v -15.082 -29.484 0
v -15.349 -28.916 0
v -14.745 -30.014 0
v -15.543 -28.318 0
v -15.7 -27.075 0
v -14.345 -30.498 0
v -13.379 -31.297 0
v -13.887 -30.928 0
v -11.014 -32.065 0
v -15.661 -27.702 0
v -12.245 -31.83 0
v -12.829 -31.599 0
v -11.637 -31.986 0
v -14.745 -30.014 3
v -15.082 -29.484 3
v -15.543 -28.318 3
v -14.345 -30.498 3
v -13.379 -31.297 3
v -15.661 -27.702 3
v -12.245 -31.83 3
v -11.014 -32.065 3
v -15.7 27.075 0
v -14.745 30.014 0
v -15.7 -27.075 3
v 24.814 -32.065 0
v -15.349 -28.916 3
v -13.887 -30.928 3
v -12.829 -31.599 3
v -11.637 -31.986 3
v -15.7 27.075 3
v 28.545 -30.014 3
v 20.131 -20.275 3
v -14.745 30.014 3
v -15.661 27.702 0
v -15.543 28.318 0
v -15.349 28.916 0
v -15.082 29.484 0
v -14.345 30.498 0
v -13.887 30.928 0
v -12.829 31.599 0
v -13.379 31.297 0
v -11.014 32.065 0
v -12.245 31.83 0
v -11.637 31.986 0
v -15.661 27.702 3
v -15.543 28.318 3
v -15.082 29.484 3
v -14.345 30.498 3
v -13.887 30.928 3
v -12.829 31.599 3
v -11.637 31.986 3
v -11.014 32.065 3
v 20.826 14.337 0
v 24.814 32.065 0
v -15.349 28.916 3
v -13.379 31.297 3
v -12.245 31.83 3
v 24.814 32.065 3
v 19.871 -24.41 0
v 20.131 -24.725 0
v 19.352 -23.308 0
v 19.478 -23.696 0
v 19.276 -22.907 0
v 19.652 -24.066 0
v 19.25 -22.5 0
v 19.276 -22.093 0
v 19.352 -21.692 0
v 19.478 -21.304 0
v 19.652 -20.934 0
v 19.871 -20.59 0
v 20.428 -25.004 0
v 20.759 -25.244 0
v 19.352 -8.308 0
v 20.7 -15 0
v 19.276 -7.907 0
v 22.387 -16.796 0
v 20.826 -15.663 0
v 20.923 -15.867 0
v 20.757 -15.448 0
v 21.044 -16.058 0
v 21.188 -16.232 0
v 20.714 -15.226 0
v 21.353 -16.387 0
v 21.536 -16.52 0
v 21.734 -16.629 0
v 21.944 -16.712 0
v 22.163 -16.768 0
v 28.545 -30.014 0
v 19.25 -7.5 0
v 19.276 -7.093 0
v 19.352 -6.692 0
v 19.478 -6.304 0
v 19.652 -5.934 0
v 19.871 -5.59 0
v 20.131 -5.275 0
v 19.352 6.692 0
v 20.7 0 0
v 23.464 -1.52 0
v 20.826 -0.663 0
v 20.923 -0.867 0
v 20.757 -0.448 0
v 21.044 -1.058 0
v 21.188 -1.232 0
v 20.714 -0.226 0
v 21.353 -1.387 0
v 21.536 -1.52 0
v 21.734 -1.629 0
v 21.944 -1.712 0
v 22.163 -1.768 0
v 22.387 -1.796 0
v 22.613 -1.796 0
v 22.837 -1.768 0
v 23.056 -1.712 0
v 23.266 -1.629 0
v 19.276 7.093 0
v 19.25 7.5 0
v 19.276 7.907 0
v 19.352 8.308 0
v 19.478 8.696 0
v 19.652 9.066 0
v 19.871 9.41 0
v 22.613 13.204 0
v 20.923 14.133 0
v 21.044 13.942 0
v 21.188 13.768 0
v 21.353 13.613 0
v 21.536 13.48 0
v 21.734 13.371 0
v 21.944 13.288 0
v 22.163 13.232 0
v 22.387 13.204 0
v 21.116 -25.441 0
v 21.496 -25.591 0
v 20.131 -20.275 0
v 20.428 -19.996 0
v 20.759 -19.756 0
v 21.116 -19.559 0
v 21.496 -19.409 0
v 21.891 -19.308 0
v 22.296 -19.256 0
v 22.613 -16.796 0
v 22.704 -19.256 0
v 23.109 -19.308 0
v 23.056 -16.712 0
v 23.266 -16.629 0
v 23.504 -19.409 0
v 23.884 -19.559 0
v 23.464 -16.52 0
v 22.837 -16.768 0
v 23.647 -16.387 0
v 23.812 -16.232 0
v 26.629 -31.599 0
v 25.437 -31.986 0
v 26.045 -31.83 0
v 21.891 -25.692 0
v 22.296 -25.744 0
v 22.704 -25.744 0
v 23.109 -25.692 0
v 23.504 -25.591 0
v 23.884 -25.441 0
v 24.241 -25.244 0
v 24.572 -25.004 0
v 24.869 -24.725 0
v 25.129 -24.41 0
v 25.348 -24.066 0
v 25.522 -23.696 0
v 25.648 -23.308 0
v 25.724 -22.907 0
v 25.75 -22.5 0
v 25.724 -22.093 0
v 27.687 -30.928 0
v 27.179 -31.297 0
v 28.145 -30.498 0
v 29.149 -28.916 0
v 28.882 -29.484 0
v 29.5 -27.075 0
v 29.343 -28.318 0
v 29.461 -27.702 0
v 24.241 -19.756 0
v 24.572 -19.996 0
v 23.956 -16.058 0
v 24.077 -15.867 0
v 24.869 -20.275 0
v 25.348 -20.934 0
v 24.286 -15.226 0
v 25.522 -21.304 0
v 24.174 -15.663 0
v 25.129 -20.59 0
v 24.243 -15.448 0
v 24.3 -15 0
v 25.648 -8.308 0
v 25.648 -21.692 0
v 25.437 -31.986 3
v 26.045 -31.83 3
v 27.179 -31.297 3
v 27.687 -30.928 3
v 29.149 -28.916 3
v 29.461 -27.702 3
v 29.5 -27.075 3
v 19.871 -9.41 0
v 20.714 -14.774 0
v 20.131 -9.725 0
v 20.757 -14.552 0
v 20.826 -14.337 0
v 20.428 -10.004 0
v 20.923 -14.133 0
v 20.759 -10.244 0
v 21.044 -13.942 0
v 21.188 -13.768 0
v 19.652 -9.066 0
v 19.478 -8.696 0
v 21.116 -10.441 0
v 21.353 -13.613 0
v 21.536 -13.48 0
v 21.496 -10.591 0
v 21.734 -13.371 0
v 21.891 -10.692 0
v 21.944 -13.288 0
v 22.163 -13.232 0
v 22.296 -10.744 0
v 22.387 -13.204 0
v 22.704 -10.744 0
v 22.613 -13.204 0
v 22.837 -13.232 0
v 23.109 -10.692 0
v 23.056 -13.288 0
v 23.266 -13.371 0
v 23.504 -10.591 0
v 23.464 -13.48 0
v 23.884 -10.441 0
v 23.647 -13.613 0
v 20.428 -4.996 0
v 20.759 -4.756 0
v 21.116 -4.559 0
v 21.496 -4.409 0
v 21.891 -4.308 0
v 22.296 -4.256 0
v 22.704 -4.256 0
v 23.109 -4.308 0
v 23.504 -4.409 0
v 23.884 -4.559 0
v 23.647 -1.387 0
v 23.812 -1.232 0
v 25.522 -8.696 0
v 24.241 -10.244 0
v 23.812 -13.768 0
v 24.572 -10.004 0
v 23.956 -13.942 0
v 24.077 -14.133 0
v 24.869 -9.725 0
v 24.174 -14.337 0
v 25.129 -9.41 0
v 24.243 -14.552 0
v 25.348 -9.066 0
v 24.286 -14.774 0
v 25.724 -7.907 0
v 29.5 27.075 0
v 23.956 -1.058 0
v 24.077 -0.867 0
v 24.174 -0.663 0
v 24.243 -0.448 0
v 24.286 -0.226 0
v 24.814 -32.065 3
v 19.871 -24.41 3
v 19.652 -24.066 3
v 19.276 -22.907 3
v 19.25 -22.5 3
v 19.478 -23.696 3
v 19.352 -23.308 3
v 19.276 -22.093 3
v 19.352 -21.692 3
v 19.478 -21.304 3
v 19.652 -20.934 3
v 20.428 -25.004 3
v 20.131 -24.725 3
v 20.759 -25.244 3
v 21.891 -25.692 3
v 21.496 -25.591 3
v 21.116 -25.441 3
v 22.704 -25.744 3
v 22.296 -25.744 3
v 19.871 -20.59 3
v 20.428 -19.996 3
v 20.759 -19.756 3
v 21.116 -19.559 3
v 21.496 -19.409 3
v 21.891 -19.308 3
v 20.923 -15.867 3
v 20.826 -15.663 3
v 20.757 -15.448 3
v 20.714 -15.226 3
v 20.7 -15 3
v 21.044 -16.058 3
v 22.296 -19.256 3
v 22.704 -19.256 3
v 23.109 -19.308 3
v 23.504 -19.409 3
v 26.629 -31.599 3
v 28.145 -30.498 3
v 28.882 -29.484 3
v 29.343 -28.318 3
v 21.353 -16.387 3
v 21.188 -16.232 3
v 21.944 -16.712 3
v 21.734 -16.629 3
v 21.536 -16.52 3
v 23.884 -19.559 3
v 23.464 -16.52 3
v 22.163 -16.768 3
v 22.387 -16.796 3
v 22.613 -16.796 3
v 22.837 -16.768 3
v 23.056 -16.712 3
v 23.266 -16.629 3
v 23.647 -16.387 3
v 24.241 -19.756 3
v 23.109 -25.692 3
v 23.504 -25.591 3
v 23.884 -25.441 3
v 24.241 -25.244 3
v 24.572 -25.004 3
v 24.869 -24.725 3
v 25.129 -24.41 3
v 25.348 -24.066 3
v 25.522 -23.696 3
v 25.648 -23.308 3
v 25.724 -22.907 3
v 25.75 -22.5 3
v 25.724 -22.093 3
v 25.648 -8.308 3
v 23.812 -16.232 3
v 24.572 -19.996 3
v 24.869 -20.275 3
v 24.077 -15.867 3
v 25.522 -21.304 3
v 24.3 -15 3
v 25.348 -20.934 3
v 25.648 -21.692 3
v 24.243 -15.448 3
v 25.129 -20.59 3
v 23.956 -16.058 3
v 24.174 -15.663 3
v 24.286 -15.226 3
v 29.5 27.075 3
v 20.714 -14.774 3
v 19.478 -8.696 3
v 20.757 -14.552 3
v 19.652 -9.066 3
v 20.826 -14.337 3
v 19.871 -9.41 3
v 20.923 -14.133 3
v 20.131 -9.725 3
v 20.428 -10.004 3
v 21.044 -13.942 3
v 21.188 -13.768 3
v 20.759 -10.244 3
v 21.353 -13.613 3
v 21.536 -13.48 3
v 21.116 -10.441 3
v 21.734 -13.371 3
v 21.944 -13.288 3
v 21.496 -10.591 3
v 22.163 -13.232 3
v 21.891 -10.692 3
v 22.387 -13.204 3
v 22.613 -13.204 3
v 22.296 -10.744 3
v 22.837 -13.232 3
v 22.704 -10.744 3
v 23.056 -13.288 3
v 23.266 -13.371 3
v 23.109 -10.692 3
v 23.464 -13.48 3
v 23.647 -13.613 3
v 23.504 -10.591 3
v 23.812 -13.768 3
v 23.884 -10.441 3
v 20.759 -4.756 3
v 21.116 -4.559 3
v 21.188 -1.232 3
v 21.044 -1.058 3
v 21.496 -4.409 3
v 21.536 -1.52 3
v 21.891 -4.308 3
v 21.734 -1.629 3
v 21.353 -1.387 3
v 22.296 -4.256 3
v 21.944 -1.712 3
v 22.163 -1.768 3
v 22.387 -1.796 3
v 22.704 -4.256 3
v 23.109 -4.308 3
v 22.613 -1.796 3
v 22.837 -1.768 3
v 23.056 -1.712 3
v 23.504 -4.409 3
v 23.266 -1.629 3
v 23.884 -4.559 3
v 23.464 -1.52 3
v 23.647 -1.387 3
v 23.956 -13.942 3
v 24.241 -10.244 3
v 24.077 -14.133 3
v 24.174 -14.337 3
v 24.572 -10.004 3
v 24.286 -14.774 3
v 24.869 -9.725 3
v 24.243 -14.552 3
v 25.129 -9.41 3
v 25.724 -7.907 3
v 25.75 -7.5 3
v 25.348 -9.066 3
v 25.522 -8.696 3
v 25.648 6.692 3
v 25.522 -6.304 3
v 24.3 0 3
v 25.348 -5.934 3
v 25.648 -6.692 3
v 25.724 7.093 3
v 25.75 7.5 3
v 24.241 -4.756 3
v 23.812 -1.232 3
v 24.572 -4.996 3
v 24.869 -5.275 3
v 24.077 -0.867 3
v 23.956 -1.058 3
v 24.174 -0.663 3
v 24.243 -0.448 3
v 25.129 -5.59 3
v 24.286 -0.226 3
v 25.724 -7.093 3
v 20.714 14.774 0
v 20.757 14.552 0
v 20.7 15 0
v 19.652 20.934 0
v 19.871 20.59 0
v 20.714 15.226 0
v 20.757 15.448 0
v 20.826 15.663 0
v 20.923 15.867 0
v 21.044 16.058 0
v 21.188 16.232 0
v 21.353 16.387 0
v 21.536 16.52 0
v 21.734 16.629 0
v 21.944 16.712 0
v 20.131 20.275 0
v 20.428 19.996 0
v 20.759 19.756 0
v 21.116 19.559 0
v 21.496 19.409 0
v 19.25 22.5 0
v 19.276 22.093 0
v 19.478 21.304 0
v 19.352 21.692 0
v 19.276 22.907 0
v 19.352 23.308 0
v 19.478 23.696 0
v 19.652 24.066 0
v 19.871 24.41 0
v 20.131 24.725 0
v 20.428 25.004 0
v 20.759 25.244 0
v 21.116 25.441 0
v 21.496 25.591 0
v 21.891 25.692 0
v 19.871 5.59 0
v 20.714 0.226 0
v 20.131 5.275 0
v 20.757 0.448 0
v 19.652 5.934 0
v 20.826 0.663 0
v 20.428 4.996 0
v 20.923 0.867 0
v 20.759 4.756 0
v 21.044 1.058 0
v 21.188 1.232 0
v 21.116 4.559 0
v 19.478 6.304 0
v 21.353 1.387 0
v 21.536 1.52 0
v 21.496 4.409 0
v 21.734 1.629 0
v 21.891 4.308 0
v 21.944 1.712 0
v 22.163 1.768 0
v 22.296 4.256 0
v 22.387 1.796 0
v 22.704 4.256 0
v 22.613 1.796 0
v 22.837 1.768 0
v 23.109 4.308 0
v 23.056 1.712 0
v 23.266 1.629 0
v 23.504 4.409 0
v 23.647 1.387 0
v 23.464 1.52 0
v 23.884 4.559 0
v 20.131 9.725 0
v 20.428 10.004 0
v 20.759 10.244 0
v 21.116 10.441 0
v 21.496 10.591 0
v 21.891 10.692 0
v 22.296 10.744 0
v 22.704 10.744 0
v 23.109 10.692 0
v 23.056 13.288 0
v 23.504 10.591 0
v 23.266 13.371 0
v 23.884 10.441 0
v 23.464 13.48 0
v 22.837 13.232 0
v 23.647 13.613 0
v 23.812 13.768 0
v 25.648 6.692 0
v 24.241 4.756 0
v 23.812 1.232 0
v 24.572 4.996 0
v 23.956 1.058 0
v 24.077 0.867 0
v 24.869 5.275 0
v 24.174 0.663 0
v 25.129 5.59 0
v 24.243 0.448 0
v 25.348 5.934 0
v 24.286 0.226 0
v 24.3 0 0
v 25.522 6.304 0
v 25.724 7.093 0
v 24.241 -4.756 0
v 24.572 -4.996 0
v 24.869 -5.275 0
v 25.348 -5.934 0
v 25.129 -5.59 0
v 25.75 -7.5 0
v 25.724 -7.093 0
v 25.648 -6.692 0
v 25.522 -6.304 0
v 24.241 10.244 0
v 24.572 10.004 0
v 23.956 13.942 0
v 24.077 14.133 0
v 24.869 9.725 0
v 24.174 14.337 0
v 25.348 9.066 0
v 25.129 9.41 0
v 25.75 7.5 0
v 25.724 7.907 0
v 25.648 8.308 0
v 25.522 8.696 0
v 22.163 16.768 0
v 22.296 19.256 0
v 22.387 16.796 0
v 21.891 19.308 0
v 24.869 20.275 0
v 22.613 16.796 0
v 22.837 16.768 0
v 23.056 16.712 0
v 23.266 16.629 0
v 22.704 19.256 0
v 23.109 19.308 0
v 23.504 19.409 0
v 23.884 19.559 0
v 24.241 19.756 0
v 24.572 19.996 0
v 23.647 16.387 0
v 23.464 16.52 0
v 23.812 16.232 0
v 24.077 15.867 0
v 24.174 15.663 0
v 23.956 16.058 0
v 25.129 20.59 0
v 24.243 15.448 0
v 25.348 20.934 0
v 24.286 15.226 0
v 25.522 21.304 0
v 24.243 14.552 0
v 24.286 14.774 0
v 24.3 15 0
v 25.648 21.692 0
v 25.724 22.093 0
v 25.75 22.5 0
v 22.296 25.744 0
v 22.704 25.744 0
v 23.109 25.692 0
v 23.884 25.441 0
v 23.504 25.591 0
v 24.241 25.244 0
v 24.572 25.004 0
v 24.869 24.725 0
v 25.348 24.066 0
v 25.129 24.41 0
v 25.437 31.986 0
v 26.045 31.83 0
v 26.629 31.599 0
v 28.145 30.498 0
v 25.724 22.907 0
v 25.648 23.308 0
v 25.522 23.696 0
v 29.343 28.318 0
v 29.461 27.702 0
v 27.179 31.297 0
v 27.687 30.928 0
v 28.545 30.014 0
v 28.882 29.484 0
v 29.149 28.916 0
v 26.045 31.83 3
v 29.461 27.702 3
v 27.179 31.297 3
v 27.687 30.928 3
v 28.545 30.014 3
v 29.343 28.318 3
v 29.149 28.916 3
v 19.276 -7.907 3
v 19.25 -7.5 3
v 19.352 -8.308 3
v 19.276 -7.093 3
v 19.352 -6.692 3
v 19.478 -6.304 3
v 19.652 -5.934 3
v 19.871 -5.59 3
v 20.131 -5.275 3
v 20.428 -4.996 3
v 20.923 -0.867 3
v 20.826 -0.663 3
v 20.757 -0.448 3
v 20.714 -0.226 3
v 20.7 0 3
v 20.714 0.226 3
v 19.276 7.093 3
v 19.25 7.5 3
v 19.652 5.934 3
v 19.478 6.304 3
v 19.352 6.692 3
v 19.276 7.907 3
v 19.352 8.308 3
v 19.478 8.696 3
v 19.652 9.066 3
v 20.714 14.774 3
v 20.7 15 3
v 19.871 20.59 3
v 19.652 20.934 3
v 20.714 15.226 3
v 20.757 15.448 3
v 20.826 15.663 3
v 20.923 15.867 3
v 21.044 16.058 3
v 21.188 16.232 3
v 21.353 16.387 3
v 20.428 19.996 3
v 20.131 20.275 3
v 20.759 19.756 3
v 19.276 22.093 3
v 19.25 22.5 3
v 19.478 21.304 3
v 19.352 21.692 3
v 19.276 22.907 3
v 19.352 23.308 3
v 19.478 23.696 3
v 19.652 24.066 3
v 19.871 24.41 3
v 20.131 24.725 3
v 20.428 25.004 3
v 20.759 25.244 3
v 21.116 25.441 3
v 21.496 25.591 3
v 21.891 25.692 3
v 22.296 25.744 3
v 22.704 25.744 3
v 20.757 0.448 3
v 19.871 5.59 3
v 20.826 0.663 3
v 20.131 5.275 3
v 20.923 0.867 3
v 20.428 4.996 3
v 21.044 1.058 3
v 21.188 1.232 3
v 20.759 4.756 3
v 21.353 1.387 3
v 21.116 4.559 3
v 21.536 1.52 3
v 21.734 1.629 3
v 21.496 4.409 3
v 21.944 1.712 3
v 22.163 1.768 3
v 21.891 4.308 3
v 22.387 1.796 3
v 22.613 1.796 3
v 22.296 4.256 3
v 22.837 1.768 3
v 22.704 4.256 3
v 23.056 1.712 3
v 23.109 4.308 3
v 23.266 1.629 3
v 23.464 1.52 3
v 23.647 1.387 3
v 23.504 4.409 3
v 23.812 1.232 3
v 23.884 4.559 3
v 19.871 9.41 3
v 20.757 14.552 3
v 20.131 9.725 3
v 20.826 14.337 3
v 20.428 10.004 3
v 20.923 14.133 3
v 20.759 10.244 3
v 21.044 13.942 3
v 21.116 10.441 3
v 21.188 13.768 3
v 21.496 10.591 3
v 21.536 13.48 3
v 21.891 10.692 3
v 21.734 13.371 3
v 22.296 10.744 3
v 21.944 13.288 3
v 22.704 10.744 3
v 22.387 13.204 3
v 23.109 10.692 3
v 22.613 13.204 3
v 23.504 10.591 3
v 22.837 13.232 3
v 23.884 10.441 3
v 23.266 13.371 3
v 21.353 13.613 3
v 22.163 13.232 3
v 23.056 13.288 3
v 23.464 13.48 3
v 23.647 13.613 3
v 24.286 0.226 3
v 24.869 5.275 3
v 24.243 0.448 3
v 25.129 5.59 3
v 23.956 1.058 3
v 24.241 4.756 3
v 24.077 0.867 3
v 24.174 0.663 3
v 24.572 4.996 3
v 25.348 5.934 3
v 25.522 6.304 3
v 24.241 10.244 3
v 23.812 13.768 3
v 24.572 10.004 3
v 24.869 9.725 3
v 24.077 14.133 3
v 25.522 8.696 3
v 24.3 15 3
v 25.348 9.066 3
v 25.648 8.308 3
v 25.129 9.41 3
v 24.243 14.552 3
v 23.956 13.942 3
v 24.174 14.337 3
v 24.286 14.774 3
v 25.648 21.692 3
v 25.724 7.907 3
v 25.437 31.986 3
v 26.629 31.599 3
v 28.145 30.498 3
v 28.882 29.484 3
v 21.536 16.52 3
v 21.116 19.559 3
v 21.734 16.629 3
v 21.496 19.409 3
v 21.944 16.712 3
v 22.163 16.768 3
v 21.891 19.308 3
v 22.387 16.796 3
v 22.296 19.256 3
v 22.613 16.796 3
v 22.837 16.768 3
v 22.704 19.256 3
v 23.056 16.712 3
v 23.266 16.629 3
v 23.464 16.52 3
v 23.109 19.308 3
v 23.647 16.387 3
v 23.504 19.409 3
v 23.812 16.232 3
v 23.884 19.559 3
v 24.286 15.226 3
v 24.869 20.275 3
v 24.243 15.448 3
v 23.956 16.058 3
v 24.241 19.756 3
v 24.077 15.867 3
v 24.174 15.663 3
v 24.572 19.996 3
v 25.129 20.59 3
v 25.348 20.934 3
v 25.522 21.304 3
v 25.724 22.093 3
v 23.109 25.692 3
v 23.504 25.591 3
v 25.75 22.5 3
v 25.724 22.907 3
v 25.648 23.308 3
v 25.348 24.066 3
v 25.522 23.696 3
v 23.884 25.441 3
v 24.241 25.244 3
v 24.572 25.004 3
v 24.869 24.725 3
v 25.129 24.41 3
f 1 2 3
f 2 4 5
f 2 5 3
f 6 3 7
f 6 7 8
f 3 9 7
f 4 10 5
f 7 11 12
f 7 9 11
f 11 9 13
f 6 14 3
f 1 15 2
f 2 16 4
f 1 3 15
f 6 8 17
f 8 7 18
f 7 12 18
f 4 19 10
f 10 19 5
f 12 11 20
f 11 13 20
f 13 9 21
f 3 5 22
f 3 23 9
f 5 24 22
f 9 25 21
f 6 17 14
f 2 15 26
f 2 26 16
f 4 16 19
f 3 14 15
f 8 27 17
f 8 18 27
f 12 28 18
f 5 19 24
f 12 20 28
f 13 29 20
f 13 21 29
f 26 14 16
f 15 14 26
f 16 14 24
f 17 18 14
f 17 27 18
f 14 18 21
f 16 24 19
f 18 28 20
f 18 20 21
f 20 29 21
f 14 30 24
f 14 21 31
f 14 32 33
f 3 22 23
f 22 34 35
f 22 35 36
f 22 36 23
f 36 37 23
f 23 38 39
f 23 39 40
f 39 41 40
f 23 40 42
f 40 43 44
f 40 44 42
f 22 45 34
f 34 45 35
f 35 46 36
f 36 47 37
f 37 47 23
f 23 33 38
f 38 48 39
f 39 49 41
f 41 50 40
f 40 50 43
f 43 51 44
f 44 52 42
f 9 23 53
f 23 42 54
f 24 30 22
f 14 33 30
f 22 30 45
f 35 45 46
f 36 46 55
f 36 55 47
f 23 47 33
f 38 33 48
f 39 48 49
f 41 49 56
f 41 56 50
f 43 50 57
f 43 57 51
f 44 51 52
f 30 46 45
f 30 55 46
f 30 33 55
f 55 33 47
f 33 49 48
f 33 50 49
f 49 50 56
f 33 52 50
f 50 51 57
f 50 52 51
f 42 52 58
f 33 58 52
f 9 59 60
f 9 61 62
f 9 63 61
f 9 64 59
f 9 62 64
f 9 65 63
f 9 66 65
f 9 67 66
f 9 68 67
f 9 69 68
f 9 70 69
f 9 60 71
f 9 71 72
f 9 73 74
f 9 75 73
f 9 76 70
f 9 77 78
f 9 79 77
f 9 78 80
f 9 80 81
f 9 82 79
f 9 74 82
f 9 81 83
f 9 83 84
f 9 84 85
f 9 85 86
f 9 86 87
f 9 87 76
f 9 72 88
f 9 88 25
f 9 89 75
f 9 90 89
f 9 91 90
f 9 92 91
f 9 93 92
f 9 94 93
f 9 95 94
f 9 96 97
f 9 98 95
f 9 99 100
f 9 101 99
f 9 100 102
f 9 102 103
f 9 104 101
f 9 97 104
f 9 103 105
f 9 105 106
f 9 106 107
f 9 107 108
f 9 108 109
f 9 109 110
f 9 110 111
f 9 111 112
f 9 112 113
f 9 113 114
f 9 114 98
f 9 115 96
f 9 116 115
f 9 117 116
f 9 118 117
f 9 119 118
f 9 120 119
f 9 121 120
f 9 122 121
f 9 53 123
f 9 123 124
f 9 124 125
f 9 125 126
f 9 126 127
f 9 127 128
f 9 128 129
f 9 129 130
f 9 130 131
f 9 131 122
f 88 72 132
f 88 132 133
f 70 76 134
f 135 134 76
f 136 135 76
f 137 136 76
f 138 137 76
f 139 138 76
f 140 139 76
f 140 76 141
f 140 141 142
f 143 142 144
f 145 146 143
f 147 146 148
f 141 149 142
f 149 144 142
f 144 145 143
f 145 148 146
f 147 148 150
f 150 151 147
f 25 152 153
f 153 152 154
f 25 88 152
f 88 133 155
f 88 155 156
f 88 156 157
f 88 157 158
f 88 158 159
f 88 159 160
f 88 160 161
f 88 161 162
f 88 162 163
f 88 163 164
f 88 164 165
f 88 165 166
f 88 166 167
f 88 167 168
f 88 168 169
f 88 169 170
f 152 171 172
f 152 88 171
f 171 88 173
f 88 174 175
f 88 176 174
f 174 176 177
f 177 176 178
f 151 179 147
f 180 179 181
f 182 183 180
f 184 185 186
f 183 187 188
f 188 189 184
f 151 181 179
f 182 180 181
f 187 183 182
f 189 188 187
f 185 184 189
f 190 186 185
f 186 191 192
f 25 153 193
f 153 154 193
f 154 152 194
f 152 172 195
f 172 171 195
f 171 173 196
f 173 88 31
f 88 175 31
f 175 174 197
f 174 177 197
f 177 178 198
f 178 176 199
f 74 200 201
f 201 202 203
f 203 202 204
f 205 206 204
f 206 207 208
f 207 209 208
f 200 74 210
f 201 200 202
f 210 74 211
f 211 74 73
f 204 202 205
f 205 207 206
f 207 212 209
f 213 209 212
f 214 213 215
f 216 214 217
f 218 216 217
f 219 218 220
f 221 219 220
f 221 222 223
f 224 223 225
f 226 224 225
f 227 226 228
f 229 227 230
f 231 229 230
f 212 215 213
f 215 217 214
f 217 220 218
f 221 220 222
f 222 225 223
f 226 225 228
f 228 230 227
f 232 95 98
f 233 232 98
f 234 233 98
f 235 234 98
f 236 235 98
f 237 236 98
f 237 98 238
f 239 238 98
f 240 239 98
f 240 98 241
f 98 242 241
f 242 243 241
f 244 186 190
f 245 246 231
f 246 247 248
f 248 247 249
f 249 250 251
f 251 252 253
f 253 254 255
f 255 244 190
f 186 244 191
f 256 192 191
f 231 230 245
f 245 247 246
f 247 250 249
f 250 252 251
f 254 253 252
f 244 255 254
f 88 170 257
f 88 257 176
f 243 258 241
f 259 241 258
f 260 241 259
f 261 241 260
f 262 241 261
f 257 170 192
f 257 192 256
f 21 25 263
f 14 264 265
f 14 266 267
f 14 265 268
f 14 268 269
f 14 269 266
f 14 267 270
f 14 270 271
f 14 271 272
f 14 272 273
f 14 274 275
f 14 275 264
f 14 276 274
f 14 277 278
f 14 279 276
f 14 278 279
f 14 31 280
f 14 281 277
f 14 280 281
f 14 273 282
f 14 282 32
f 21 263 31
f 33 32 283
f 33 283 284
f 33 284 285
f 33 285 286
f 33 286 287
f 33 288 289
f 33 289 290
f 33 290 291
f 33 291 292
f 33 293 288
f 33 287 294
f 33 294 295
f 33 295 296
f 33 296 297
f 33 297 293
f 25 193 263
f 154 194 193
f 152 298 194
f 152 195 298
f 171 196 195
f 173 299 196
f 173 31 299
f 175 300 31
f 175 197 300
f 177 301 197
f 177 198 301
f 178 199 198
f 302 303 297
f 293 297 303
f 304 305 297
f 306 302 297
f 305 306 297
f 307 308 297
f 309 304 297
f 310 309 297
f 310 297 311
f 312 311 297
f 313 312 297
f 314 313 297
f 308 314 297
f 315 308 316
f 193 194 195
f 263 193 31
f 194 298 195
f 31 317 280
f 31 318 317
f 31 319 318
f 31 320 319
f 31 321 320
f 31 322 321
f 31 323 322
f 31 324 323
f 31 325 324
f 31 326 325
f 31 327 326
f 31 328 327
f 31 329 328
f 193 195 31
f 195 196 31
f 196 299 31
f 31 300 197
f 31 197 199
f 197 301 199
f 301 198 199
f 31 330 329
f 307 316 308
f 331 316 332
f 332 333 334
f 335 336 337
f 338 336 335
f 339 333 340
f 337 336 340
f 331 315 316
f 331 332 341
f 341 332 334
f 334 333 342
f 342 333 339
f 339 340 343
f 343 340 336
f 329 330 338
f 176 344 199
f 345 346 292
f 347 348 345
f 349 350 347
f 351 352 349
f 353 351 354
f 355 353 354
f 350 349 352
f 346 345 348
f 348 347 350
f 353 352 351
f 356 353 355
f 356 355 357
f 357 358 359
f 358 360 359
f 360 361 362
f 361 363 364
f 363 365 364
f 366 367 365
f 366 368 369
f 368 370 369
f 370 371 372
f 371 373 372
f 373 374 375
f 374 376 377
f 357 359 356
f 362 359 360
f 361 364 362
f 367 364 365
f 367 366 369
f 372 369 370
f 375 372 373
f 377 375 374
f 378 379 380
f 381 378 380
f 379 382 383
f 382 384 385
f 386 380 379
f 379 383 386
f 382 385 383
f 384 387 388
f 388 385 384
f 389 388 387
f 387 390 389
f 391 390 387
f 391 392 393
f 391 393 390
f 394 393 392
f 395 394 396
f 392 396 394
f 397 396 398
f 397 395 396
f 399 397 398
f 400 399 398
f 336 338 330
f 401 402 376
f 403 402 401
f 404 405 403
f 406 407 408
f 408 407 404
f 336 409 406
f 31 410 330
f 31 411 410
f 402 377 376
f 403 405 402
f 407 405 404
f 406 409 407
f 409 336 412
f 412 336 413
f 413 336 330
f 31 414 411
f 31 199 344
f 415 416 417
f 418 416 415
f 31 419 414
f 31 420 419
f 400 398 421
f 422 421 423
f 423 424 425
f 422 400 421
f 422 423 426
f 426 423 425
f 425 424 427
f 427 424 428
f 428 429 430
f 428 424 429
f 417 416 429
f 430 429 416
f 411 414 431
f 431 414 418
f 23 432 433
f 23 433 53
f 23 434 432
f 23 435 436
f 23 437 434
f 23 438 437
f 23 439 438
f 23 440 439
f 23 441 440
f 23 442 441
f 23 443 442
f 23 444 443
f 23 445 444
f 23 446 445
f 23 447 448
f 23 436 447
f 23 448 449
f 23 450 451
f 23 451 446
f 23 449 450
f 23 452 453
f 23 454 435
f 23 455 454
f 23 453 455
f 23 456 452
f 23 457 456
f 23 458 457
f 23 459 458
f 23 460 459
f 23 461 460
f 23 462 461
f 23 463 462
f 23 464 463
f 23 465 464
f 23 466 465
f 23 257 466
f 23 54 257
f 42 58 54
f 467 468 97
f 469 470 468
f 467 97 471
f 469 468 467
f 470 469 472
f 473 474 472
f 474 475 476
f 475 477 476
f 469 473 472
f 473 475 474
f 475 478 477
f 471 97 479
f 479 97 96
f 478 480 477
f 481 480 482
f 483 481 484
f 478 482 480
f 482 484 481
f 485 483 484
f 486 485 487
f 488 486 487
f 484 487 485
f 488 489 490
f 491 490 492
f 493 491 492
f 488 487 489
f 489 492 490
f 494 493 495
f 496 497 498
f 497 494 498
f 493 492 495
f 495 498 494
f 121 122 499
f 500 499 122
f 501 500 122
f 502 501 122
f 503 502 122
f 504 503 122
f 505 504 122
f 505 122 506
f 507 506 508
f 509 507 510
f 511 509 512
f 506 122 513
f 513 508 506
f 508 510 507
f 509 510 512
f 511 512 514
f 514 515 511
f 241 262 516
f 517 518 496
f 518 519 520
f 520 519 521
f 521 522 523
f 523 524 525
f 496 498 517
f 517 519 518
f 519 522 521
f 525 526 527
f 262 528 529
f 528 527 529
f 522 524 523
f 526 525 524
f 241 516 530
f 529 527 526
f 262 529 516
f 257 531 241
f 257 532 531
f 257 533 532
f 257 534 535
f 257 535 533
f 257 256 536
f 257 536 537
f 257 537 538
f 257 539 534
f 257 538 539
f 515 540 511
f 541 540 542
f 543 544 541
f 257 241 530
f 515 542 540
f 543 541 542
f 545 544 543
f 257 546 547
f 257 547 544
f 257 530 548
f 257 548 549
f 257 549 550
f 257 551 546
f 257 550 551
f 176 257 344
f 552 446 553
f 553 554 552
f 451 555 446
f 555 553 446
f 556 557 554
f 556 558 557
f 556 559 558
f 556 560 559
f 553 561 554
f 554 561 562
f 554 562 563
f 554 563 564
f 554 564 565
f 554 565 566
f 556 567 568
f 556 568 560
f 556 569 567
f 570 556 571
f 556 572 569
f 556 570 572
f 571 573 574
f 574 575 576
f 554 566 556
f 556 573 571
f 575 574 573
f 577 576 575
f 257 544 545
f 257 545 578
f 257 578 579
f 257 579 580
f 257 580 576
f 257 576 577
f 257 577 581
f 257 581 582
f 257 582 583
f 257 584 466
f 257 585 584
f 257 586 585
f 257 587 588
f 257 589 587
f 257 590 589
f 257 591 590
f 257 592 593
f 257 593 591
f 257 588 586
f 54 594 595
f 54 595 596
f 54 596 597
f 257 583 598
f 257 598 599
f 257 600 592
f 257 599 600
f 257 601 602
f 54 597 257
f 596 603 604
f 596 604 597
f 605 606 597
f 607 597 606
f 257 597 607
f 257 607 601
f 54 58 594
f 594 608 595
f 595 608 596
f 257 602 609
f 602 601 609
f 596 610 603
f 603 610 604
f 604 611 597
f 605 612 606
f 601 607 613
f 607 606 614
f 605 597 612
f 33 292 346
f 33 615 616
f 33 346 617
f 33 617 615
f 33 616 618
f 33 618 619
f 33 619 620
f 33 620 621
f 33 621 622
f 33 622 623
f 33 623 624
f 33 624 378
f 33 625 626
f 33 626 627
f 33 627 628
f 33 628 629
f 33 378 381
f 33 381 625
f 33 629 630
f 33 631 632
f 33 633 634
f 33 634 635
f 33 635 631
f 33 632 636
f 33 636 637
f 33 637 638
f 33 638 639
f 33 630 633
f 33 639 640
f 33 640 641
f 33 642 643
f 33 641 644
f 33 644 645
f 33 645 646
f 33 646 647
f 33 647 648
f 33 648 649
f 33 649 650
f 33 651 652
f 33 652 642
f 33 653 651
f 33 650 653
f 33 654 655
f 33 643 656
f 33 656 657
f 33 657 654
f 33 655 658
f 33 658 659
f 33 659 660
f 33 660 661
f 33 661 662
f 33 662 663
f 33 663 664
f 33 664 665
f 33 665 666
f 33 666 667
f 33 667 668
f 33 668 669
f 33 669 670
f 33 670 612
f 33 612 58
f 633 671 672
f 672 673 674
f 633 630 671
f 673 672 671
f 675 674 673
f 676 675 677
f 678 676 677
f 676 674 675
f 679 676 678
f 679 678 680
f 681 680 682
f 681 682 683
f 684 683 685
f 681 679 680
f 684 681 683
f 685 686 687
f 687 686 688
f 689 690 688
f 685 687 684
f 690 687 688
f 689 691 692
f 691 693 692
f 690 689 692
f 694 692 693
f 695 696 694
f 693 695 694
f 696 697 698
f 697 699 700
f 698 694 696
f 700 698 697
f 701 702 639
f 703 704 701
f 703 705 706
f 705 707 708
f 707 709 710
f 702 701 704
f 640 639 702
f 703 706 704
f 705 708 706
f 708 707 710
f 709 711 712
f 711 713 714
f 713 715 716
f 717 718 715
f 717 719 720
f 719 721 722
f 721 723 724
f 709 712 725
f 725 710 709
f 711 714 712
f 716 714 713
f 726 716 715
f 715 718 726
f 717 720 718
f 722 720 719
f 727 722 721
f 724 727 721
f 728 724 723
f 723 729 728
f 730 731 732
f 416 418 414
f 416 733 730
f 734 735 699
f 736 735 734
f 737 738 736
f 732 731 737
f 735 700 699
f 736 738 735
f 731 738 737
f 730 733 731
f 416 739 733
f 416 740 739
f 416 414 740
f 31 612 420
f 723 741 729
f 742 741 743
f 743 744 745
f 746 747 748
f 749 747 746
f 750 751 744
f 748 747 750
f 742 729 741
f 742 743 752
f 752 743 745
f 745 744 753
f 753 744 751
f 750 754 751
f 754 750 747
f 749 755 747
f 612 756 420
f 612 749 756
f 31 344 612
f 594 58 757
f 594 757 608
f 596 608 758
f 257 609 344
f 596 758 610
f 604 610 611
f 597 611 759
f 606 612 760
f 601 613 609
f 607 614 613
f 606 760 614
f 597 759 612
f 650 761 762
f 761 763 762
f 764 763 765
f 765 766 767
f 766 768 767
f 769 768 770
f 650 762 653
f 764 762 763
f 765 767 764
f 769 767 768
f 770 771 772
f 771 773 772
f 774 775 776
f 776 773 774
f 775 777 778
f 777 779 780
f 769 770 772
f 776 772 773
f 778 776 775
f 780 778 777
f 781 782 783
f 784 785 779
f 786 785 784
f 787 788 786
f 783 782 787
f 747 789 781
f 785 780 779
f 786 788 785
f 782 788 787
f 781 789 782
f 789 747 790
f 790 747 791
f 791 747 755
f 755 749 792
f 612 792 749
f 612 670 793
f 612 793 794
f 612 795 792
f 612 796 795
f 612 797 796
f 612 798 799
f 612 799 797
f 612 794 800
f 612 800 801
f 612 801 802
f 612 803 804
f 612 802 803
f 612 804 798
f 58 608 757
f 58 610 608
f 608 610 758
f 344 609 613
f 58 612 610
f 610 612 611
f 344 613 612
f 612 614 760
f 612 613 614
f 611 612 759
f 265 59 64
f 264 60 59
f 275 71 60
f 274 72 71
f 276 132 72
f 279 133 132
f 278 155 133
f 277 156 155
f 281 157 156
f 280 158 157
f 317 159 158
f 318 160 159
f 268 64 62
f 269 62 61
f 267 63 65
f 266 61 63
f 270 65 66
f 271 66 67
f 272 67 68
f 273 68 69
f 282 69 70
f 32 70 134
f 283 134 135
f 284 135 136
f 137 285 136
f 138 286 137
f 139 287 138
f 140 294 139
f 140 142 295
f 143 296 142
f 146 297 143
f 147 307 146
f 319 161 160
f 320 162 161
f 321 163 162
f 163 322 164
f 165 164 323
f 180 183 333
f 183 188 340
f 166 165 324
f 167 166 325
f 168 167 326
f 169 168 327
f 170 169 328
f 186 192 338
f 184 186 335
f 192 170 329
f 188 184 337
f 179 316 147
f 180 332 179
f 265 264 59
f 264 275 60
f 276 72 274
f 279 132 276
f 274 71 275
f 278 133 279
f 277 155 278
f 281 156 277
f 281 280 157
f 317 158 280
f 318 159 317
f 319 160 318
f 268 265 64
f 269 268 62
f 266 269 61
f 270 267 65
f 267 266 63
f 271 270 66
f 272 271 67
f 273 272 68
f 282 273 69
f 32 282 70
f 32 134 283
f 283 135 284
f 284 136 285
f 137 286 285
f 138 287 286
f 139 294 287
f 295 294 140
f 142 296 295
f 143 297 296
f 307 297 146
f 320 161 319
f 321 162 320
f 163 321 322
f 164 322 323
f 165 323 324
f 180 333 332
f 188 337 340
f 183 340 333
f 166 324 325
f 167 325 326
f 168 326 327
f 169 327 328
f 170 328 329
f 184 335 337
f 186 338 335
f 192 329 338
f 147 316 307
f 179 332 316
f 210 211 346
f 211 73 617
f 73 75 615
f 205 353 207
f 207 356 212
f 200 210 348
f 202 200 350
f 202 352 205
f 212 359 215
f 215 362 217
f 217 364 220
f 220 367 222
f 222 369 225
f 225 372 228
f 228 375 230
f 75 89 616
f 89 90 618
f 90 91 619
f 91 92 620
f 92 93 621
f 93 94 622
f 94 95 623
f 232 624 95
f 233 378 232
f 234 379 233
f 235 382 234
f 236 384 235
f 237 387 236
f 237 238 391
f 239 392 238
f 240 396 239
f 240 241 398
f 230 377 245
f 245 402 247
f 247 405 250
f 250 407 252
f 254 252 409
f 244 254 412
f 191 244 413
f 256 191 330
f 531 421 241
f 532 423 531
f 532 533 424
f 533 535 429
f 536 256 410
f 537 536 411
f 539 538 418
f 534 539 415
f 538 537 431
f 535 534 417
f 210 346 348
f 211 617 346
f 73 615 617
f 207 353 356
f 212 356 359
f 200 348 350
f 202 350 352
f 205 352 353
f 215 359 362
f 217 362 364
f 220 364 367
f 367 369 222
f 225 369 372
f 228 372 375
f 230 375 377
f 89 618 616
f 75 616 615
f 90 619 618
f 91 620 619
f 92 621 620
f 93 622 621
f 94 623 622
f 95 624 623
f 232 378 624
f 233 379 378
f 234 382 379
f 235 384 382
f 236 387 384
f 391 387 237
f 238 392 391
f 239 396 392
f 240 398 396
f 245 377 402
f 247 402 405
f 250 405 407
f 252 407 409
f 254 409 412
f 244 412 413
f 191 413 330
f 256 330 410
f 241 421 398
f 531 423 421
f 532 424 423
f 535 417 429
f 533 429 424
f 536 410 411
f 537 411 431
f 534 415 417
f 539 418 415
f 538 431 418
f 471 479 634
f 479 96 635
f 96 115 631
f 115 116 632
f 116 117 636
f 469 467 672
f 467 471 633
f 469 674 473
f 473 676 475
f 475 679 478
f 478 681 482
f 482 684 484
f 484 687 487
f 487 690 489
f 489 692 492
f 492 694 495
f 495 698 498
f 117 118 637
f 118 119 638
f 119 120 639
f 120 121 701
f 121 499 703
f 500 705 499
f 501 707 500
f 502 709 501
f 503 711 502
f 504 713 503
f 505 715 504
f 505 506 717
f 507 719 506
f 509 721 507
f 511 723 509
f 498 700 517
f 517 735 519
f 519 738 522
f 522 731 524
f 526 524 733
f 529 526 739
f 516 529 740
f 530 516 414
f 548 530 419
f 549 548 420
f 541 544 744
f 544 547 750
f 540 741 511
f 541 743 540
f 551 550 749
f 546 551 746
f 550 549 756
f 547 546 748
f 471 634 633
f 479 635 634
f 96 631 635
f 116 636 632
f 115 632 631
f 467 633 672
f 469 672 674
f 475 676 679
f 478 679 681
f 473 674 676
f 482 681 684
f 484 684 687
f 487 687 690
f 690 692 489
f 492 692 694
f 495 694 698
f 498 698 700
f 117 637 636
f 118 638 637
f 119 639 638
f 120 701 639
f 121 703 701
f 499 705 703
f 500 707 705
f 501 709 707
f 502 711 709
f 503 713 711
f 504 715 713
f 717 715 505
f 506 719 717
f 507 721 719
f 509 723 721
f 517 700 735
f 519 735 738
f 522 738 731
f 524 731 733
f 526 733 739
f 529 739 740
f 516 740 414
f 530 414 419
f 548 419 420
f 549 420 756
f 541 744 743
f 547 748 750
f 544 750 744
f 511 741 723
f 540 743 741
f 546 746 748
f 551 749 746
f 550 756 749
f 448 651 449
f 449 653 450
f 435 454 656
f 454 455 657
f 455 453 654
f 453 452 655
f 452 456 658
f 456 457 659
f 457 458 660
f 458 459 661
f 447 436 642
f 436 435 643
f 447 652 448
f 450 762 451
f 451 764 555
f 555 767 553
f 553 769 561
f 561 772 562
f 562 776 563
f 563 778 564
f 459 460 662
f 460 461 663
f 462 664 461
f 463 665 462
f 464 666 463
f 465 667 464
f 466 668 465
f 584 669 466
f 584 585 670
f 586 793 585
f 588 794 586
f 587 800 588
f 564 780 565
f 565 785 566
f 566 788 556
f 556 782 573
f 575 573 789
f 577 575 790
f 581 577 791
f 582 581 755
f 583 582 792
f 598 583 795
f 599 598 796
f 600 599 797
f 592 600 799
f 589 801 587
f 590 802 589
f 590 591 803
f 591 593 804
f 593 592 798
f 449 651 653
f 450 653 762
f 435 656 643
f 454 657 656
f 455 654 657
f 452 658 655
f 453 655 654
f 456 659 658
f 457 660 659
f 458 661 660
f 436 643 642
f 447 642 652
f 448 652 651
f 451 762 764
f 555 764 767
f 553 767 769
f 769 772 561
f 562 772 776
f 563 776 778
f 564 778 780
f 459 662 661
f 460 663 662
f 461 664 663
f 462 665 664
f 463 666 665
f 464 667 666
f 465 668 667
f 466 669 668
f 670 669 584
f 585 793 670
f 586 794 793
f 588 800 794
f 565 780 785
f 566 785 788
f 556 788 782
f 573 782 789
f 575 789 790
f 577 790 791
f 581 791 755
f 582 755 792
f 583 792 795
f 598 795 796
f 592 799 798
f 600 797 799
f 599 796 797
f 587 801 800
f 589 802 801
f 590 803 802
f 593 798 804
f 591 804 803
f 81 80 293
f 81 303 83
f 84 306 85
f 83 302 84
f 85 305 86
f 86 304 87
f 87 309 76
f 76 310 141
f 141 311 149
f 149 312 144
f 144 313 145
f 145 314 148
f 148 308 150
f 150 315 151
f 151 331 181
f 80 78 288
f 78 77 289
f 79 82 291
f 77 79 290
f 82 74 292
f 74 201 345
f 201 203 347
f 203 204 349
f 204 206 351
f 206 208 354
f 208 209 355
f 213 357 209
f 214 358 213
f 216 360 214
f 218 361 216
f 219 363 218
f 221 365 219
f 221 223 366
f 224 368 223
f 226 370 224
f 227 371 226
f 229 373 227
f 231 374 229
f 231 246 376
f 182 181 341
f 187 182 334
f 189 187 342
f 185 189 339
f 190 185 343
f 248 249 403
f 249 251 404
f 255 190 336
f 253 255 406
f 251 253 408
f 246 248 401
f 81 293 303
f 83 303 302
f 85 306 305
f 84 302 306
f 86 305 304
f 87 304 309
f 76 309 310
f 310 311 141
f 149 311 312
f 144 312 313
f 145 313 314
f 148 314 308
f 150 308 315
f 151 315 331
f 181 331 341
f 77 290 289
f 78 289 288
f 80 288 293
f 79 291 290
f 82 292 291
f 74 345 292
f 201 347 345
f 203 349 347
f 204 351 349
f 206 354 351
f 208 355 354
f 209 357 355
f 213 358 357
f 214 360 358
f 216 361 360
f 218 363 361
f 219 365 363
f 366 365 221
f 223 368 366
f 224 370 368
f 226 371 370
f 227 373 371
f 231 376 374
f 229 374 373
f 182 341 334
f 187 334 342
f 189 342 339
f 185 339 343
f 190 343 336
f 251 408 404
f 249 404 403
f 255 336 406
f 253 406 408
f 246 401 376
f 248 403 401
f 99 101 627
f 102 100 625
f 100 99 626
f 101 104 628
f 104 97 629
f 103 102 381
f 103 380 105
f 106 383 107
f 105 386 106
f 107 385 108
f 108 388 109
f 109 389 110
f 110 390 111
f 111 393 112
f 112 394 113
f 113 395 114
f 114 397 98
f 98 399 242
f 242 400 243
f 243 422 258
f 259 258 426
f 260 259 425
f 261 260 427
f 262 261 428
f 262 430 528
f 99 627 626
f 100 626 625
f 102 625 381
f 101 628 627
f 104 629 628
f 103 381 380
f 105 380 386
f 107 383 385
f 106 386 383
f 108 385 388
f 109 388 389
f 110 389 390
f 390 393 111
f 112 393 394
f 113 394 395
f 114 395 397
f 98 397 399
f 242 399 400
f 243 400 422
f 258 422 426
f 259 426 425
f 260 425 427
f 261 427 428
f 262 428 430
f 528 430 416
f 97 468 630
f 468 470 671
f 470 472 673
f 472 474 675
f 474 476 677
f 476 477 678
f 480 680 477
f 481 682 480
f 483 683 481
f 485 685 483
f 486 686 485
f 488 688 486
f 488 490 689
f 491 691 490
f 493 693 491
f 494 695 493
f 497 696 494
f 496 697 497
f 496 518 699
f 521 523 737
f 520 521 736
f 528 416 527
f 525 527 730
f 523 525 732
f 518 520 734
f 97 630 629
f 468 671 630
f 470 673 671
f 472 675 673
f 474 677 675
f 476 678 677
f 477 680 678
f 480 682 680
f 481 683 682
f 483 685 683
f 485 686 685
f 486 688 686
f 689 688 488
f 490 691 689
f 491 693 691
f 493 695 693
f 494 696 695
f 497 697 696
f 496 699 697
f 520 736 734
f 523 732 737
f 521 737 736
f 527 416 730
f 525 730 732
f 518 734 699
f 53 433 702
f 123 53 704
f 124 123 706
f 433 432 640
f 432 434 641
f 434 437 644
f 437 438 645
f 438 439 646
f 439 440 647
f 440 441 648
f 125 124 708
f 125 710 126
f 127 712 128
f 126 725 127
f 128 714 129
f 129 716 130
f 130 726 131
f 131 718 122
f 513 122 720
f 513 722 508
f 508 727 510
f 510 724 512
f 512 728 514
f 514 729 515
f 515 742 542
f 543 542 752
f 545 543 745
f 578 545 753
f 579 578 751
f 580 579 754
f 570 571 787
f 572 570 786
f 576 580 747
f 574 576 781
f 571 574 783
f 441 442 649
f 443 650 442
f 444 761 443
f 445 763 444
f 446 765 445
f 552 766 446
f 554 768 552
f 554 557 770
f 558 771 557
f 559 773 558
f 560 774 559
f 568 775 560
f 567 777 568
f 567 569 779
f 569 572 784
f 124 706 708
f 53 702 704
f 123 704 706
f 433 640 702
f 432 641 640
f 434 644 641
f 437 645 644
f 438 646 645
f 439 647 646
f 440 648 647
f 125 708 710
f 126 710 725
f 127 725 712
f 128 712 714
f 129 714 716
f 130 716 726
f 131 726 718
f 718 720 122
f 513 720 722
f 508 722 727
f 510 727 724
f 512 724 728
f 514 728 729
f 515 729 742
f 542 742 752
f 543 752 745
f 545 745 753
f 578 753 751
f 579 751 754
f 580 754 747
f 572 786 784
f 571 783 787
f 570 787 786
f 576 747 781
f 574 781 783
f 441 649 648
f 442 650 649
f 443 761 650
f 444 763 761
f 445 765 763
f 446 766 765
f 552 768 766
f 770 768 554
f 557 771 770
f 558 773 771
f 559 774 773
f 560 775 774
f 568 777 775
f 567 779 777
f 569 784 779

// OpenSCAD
$fn = 50;

difference() {
	union() {
		translate(v = [6.9, 0.0, 0]) {
			hull() {
				translate(v = [-17.6, 27.075000000000003, 0]) {
					cylinder(h = 3, r = 5);
				}
				translate(v = [17.6, 27.075000000000003, 0]) {
					cylinder(h = 3, r = 5);
				}
				translate(v = [-17.6, -27.075000000000003, 0]) {
					cylinder(h = 3, r = 5);
				}
				translate(v = [17.6, -27.075000000000003, 0]) {
					cylinder(h = 3, r = 5);
				}
			}
		}
	}
	union() {
		translate(v = [22.5, -22.5, -1]) {
			cylinder(h = 5, r = 3.25);
		}
		translate(v = [22.5, -7.5, -1]) {
			cylinder(h = 5, r = 3.25);
		}
		translate(v = [22.5, 7.5, -1]) {
			cylinder(h = 5, r = 3.25);
		}
		translate(v = [22.5, 22.5, -1]) {
			cylinder(h = 5, r = 3.25);
		}
		translate(v = [22.5, -15.0, -1]) {
			cylinder(h = 5, r = 1.8);
		}
		translate(v = [22.5, 0.0, -1]) {
			cylinder(h = 5, r = 1.8);
		}
		translate(v = [22.5, 15.0, -1]) {
			cylinder(h = 5, r = 1.8);
		}
	}
}
